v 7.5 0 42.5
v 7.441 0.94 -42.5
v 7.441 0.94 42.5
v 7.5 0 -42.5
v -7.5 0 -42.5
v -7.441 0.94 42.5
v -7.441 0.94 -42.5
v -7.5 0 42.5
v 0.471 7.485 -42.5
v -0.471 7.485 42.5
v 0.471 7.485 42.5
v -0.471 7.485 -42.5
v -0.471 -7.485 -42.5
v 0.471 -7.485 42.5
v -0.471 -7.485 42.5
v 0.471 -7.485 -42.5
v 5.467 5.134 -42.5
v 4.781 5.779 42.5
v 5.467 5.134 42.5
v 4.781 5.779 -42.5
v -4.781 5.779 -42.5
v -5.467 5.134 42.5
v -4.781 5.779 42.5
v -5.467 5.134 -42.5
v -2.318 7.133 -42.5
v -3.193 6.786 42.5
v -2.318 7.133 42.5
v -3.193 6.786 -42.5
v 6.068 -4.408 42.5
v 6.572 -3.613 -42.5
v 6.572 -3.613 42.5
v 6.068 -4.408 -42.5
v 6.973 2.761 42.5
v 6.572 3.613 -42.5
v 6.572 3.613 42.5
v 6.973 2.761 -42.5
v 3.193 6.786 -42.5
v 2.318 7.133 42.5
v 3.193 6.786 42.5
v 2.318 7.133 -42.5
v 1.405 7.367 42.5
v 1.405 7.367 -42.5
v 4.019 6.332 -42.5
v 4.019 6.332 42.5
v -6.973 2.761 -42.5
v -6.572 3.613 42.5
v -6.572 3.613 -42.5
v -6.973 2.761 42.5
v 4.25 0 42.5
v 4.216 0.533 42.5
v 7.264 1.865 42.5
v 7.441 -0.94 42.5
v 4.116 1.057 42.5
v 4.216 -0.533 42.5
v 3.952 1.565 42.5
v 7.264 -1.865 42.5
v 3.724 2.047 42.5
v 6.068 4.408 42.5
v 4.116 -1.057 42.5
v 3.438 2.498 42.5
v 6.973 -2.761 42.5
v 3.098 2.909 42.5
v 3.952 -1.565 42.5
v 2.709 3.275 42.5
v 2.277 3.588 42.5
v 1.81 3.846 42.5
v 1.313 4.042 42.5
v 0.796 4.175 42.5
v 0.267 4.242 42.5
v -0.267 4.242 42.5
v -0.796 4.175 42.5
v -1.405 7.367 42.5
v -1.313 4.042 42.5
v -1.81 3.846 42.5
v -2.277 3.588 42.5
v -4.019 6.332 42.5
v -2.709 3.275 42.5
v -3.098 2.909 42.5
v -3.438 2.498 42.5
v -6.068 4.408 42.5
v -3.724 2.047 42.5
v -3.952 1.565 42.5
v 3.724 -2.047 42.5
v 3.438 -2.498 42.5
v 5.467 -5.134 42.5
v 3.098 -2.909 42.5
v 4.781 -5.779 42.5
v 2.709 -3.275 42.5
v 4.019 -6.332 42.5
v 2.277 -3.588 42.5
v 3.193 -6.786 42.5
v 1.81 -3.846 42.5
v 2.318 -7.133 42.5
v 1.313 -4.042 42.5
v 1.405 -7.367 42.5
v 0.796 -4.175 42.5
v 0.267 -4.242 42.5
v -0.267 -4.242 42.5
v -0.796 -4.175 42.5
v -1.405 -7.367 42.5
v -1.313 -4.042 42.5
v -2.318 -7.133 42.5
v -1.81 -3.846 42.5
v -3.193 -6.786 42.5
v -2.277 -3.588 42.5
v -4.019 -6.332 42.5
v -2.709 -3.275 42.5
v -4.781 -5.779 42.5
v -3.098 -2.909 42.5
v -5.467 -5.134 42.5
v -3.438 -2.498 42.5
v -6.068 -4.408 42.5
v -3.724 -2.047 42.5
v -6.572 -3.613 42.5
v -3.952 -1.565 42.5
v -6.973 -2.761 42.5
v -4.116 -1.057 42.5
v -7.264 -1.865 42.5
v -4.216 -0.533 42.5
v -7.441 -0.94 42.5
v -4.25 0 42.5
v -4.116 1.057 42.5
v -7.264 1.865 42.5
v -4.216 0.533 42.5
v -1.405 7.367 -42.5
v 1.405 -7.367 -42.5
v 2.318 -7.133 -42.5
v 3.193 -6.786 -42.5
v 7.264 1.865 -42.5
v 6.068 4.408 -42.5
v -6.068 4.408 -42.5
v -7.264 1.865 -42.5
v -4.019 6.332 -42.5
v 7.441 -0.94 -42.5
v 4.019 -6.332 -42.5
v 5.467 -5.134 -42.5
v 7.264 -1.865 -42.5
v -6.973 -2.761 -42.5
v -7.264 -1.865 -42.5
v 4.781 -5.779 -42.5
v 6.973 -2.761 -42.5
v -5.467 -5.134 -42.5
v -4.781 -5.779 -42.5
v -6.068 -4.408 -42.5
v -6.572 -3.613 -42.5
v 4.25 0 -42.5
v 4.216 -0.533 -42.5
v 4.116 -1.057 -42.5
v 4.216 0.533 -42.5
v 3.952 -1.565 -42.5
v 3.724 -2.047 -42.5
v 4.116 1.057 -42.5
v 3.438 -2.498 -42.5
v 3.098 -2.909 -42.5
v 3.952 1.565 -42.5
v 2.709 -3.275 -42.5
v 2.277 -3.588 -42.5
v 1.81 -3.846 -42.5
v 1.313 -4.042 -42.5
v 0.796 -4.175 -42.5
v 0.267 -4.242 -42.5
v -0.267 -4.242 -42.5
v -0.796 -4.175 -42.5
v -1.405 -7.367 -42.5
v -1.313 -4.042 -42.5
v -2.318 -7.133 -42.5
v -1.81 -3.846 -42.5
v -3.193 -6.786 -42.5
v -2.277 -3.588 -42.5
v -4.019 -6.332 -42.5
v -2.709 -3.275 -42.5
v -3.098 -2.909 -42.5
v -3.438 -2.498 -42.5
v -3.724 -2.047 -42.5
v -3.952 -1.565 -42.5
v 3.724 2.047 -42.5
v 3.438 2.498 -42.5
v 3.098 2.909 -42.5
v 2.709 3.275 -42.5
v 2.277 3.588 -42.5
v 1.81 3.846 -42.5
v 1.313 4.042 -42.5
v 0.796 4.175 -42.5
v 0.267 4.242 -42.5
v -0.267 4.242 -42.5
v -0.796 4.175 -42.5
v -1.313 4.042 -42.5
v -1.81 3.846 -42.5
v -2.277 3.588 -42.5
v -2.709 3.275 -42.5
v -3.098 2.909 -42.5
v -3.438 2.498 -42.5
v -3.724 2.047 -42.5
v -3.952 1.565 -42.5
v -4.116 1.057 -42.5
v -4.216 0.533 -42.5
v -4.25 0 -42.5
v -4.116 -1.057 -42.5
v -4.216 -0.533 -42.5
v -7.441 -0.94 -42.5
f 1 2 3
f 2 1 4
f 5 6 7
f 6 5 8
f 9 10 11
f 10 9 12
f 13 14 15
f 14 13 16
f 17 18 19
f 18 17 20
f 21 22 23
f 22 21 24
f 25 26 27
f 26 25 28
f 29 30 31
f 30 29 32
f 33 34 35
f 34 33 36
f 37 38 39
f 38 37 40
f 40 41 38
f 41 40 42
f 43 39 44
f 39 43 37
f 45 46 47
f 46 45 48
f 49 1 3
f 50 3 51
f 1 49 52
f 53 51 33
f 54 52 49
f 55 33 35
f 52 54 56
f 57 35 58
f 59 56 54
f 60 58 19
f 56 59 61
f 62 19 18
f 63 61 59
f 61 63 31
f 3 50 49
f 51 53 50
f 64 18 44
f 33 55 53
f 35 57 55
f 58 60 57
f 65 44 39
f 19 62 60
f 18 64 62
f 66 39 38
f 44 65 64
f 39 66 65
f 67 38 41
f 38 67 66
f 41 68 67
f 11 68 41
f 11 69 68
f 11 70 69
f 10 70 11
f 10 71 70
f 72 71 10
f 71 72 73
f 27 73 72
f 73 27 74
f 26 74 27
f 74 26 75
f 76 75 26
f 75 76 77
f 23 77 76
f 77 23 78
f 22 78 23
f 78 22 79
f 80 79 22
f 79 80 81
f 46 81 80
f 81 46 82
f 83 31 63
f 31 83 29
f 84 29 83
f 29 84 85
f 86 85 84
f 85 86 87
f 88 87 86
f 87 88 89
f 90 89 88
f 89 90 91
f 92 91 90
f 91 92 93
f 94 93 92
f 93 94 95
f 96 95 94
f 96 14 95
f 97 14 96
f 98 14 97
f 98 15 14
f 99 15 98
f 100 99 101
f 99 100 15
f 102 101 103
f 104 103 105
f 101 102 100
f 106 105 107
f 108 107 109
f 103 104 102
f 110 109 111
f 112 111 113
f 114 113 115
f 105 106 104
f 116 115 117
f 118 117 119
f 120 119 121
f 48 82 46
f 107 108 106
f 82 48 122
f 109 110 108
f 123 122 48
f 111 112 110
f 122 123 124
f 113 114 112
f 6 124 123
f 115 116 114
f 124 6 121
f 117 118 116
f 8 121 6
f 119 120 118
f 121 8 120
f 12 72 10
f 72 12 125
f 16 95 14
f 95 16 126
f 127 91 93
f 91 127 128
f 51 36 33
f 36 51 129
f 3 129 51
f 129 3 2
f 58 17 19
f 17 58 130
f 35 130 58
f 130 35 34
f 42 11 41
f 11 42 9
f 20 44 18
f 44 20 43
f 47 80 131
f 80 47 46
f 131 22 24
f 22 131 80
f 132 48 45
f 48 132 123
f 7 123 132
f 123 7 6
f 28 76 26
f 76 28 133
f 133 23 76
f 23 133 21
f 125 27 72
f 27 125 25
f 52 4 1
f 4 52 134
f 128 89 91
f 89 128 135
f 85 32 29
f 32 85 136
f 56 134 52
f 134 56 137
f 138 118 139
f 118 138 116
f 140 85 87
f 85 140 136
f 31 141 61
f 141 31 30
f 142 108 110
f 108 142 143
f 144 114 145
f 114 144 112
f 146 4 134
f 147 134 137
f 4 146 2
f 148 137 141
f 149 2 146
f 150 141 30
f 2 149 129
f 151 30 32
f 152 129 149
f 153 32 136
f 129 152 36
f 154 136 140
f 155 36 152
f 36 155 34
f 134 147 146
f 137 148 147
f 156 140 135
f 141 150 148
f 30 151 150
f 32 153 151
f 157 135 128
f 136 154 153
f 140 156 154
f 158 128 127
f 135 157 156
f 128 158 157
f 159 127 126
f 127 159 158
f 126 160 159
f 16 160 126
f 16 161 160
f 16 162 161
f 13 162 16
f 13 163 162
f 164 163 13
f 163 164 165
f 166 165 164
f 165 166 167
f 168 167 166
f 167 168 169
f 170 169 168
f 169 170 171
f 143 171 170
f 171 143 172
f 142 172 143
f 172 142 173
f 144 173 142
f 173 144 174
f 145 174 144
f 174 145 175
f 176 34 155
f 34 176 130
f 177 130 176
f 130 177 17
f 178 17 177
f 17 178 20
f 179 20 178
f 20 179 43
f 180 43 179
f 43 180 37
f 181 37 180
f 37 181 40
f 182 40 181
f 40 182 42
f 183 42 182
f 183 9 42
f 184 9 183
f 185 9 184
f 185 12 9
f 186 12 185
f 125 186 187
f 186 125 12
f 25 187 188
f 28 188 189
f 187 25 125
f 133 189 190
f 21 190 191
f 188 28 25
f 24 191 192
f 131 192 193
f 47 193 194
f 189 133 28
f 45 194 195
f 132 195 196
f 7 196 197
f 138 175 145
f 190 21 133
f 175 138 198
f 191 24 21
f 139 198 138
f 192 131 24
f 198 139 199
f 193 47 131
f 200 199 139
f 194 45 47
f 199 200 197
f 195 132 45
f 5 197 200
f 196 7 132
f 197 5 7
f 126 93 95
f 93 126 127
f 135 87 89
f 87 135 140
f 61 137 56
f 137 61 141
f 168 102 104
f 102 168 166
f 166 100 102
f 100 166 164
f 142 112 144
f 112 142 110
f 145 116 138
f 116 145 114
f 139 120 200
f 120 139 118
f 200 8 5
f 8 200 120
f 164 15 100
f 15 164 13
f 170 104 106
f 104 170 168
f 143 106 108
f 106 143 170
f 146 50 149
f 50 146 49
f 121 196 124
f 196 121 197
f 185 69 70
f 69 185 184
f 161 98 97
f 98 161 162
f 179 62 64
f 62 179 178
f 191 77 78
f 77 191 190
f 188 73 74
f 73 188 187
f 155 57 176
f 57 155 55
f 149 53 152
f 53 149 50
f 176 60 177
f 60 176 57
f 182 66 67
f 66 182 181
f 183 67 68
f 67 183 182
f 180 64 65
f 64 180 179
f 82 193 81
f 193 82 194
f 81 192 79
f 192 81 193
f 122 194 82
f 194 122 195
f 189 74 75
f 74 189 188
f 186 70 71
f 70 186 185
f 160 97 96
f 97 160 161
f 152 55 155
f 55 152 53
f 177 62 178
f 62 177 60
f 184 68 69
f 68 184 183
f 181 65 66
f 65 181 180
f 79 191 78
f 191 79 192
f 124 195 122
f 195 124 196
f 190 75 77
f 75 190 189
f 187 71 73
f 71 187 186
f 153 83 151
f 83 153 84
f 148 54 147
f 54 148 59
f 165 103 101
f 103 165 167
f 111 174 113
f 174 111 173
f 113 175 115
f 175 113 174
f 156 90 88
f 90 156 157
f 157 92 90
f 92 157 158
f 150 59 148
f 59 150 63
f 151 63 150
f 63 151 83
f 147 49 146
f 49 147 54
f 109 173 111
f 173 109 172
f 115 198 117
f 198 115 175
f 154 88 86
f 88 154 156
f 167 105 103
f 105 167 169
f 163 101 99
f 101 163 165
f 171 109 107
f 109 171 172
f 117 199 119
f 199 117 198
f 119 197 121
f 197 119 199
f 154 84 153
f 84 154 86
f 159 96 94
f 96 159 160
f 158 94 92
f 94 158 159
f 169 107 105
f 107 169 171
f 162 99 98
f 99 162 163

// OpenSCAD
$fn = 50;


difference() {
	union() {
		translate(v = [0, 0, -42.5000000000]) {
			cylinder(h = 85, r = 7.5000000000);
		}
	}
	union() {
		translate(v = [0, 0, -100.0000000000]) {
			cylinder(h = 200, r = 4.2500000000);
		}
	}
}
